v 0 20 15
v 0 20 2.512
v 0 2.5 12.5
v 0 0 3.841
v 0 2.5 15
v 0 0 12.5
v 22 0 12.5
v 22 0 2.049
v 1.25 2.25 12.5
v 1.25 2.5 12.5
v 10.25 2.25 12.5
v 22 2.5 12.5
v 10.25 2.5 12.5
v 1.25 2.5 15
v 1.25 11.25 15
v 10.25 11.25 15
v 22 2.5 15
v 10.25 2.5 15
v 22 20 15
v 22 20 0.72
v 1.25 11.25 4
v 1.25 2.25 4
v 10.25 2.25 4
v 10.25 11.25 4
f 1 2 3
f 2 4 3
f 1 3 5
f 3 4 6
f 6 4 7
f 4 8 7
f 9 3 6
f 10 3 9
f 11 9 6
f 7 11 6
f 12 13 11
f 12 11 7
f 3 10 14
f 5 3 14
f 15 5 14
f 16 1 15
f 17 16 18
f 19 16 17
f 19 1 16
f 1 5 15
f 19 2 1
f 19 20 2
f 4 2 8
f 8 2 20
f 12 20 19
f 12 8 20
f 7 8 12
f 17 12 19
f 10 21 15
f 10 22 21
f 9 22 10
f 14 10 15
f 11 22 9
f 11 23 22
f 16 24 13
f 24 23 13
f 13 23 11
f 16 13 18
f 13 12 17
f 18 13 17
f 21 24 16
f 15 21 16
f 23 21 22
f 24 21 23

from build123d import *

# Parameters (mm, degrees)
BOX003_W               = 24
BOX003_H               = 23
BOX003_DEPTH           = 10
BOX003_ROLL_ANGLE      = -3.799965
BOX003_PITCH_ANGLE     = 4.646714
BOX003_PLACEMENT_ANGLE = -0.15423
BOX002_W               = 22
BOX002_H               = 2.5
BOX002_DEPTH           = 2.5
BOX001_W               = 9
BOX001_H               = 9
BOX001_DEPTH           = 11
BOX_W                  = 22
BOX_H                  = 20
BOX_DEPTH              = 15


with BuildPart() as cube003:
    # Box003 → Box003 (new body)
    with BuildSketch(Plane.XY):
        with Locations((12, 11.5)):
            Rectangle(BOX003_W, BOX003_H)
    extrude(amount=BOX003_DEPTH)


with BuildPart() as cube003_1:
    # Box003 roll: moved
    add(cube003.part.rotate(Axis((0, 0, 0), (1, 0, 0)), BOX003_ROLL_ANGLE))


with BuildPart() as cube003_2:
    # Box003 pitch: moved
    add(cube003_1.part.rotate(Axis((0, 0, 0), (0, 1, 0)), BOX003_PITCH_ANGLE))


with BuildPart() as cube003_3:
    # Box003 placement: moved
    add(cube003_2.part.moved(Location((-1, -2, -6))).rotate(Axis((-1, -2, -6), (0, 0, 1)), BOX003_PLACEMENT_ANGLE))


with BuildPart() as cube002:
    # Box002 → Box002 (new body)
    with BuildSketch(Plane.XY.offset(12.5)):
        with Locations((11, 1.25)):
            Rectangle(BOX002_W, BOX002_H)
    extrude(amount=BOX002_DEPTH)


with BuildPart() as cube001:
    # Box001 → Box001 (new body)
    with BuildSketch(Plane(origin=(1.25, 2.25, 4), x_dir=(1, 0, 0), z_dir=(0, 0, 1))):
        with Locations((4.5, 4.5)):
            Rectangle(BOX001_W, BOX001_H)
    extrude(amount=BOX001_DEPTH)


with BuildPart() as cut002:
    # Box → Box (new body)
    with BuildSketch(Plane.XY):
        with Locations((11, 10)):
            Rectangle(BOX_W, BOX_H)
    extrude(amount=BOX_DEPTH)

    # Cut: cut Cube001
    add(cube001.part, mode=Mode.SUBTRACT)

    # Cut001: cut Cube002
    add(cube002.part, mode=Mode.SUBTRACT)

    # Cut002: cut Cube003
    add(cube003_3.part, mode=Mode.SUBTRACT)


solid = cut002.part
